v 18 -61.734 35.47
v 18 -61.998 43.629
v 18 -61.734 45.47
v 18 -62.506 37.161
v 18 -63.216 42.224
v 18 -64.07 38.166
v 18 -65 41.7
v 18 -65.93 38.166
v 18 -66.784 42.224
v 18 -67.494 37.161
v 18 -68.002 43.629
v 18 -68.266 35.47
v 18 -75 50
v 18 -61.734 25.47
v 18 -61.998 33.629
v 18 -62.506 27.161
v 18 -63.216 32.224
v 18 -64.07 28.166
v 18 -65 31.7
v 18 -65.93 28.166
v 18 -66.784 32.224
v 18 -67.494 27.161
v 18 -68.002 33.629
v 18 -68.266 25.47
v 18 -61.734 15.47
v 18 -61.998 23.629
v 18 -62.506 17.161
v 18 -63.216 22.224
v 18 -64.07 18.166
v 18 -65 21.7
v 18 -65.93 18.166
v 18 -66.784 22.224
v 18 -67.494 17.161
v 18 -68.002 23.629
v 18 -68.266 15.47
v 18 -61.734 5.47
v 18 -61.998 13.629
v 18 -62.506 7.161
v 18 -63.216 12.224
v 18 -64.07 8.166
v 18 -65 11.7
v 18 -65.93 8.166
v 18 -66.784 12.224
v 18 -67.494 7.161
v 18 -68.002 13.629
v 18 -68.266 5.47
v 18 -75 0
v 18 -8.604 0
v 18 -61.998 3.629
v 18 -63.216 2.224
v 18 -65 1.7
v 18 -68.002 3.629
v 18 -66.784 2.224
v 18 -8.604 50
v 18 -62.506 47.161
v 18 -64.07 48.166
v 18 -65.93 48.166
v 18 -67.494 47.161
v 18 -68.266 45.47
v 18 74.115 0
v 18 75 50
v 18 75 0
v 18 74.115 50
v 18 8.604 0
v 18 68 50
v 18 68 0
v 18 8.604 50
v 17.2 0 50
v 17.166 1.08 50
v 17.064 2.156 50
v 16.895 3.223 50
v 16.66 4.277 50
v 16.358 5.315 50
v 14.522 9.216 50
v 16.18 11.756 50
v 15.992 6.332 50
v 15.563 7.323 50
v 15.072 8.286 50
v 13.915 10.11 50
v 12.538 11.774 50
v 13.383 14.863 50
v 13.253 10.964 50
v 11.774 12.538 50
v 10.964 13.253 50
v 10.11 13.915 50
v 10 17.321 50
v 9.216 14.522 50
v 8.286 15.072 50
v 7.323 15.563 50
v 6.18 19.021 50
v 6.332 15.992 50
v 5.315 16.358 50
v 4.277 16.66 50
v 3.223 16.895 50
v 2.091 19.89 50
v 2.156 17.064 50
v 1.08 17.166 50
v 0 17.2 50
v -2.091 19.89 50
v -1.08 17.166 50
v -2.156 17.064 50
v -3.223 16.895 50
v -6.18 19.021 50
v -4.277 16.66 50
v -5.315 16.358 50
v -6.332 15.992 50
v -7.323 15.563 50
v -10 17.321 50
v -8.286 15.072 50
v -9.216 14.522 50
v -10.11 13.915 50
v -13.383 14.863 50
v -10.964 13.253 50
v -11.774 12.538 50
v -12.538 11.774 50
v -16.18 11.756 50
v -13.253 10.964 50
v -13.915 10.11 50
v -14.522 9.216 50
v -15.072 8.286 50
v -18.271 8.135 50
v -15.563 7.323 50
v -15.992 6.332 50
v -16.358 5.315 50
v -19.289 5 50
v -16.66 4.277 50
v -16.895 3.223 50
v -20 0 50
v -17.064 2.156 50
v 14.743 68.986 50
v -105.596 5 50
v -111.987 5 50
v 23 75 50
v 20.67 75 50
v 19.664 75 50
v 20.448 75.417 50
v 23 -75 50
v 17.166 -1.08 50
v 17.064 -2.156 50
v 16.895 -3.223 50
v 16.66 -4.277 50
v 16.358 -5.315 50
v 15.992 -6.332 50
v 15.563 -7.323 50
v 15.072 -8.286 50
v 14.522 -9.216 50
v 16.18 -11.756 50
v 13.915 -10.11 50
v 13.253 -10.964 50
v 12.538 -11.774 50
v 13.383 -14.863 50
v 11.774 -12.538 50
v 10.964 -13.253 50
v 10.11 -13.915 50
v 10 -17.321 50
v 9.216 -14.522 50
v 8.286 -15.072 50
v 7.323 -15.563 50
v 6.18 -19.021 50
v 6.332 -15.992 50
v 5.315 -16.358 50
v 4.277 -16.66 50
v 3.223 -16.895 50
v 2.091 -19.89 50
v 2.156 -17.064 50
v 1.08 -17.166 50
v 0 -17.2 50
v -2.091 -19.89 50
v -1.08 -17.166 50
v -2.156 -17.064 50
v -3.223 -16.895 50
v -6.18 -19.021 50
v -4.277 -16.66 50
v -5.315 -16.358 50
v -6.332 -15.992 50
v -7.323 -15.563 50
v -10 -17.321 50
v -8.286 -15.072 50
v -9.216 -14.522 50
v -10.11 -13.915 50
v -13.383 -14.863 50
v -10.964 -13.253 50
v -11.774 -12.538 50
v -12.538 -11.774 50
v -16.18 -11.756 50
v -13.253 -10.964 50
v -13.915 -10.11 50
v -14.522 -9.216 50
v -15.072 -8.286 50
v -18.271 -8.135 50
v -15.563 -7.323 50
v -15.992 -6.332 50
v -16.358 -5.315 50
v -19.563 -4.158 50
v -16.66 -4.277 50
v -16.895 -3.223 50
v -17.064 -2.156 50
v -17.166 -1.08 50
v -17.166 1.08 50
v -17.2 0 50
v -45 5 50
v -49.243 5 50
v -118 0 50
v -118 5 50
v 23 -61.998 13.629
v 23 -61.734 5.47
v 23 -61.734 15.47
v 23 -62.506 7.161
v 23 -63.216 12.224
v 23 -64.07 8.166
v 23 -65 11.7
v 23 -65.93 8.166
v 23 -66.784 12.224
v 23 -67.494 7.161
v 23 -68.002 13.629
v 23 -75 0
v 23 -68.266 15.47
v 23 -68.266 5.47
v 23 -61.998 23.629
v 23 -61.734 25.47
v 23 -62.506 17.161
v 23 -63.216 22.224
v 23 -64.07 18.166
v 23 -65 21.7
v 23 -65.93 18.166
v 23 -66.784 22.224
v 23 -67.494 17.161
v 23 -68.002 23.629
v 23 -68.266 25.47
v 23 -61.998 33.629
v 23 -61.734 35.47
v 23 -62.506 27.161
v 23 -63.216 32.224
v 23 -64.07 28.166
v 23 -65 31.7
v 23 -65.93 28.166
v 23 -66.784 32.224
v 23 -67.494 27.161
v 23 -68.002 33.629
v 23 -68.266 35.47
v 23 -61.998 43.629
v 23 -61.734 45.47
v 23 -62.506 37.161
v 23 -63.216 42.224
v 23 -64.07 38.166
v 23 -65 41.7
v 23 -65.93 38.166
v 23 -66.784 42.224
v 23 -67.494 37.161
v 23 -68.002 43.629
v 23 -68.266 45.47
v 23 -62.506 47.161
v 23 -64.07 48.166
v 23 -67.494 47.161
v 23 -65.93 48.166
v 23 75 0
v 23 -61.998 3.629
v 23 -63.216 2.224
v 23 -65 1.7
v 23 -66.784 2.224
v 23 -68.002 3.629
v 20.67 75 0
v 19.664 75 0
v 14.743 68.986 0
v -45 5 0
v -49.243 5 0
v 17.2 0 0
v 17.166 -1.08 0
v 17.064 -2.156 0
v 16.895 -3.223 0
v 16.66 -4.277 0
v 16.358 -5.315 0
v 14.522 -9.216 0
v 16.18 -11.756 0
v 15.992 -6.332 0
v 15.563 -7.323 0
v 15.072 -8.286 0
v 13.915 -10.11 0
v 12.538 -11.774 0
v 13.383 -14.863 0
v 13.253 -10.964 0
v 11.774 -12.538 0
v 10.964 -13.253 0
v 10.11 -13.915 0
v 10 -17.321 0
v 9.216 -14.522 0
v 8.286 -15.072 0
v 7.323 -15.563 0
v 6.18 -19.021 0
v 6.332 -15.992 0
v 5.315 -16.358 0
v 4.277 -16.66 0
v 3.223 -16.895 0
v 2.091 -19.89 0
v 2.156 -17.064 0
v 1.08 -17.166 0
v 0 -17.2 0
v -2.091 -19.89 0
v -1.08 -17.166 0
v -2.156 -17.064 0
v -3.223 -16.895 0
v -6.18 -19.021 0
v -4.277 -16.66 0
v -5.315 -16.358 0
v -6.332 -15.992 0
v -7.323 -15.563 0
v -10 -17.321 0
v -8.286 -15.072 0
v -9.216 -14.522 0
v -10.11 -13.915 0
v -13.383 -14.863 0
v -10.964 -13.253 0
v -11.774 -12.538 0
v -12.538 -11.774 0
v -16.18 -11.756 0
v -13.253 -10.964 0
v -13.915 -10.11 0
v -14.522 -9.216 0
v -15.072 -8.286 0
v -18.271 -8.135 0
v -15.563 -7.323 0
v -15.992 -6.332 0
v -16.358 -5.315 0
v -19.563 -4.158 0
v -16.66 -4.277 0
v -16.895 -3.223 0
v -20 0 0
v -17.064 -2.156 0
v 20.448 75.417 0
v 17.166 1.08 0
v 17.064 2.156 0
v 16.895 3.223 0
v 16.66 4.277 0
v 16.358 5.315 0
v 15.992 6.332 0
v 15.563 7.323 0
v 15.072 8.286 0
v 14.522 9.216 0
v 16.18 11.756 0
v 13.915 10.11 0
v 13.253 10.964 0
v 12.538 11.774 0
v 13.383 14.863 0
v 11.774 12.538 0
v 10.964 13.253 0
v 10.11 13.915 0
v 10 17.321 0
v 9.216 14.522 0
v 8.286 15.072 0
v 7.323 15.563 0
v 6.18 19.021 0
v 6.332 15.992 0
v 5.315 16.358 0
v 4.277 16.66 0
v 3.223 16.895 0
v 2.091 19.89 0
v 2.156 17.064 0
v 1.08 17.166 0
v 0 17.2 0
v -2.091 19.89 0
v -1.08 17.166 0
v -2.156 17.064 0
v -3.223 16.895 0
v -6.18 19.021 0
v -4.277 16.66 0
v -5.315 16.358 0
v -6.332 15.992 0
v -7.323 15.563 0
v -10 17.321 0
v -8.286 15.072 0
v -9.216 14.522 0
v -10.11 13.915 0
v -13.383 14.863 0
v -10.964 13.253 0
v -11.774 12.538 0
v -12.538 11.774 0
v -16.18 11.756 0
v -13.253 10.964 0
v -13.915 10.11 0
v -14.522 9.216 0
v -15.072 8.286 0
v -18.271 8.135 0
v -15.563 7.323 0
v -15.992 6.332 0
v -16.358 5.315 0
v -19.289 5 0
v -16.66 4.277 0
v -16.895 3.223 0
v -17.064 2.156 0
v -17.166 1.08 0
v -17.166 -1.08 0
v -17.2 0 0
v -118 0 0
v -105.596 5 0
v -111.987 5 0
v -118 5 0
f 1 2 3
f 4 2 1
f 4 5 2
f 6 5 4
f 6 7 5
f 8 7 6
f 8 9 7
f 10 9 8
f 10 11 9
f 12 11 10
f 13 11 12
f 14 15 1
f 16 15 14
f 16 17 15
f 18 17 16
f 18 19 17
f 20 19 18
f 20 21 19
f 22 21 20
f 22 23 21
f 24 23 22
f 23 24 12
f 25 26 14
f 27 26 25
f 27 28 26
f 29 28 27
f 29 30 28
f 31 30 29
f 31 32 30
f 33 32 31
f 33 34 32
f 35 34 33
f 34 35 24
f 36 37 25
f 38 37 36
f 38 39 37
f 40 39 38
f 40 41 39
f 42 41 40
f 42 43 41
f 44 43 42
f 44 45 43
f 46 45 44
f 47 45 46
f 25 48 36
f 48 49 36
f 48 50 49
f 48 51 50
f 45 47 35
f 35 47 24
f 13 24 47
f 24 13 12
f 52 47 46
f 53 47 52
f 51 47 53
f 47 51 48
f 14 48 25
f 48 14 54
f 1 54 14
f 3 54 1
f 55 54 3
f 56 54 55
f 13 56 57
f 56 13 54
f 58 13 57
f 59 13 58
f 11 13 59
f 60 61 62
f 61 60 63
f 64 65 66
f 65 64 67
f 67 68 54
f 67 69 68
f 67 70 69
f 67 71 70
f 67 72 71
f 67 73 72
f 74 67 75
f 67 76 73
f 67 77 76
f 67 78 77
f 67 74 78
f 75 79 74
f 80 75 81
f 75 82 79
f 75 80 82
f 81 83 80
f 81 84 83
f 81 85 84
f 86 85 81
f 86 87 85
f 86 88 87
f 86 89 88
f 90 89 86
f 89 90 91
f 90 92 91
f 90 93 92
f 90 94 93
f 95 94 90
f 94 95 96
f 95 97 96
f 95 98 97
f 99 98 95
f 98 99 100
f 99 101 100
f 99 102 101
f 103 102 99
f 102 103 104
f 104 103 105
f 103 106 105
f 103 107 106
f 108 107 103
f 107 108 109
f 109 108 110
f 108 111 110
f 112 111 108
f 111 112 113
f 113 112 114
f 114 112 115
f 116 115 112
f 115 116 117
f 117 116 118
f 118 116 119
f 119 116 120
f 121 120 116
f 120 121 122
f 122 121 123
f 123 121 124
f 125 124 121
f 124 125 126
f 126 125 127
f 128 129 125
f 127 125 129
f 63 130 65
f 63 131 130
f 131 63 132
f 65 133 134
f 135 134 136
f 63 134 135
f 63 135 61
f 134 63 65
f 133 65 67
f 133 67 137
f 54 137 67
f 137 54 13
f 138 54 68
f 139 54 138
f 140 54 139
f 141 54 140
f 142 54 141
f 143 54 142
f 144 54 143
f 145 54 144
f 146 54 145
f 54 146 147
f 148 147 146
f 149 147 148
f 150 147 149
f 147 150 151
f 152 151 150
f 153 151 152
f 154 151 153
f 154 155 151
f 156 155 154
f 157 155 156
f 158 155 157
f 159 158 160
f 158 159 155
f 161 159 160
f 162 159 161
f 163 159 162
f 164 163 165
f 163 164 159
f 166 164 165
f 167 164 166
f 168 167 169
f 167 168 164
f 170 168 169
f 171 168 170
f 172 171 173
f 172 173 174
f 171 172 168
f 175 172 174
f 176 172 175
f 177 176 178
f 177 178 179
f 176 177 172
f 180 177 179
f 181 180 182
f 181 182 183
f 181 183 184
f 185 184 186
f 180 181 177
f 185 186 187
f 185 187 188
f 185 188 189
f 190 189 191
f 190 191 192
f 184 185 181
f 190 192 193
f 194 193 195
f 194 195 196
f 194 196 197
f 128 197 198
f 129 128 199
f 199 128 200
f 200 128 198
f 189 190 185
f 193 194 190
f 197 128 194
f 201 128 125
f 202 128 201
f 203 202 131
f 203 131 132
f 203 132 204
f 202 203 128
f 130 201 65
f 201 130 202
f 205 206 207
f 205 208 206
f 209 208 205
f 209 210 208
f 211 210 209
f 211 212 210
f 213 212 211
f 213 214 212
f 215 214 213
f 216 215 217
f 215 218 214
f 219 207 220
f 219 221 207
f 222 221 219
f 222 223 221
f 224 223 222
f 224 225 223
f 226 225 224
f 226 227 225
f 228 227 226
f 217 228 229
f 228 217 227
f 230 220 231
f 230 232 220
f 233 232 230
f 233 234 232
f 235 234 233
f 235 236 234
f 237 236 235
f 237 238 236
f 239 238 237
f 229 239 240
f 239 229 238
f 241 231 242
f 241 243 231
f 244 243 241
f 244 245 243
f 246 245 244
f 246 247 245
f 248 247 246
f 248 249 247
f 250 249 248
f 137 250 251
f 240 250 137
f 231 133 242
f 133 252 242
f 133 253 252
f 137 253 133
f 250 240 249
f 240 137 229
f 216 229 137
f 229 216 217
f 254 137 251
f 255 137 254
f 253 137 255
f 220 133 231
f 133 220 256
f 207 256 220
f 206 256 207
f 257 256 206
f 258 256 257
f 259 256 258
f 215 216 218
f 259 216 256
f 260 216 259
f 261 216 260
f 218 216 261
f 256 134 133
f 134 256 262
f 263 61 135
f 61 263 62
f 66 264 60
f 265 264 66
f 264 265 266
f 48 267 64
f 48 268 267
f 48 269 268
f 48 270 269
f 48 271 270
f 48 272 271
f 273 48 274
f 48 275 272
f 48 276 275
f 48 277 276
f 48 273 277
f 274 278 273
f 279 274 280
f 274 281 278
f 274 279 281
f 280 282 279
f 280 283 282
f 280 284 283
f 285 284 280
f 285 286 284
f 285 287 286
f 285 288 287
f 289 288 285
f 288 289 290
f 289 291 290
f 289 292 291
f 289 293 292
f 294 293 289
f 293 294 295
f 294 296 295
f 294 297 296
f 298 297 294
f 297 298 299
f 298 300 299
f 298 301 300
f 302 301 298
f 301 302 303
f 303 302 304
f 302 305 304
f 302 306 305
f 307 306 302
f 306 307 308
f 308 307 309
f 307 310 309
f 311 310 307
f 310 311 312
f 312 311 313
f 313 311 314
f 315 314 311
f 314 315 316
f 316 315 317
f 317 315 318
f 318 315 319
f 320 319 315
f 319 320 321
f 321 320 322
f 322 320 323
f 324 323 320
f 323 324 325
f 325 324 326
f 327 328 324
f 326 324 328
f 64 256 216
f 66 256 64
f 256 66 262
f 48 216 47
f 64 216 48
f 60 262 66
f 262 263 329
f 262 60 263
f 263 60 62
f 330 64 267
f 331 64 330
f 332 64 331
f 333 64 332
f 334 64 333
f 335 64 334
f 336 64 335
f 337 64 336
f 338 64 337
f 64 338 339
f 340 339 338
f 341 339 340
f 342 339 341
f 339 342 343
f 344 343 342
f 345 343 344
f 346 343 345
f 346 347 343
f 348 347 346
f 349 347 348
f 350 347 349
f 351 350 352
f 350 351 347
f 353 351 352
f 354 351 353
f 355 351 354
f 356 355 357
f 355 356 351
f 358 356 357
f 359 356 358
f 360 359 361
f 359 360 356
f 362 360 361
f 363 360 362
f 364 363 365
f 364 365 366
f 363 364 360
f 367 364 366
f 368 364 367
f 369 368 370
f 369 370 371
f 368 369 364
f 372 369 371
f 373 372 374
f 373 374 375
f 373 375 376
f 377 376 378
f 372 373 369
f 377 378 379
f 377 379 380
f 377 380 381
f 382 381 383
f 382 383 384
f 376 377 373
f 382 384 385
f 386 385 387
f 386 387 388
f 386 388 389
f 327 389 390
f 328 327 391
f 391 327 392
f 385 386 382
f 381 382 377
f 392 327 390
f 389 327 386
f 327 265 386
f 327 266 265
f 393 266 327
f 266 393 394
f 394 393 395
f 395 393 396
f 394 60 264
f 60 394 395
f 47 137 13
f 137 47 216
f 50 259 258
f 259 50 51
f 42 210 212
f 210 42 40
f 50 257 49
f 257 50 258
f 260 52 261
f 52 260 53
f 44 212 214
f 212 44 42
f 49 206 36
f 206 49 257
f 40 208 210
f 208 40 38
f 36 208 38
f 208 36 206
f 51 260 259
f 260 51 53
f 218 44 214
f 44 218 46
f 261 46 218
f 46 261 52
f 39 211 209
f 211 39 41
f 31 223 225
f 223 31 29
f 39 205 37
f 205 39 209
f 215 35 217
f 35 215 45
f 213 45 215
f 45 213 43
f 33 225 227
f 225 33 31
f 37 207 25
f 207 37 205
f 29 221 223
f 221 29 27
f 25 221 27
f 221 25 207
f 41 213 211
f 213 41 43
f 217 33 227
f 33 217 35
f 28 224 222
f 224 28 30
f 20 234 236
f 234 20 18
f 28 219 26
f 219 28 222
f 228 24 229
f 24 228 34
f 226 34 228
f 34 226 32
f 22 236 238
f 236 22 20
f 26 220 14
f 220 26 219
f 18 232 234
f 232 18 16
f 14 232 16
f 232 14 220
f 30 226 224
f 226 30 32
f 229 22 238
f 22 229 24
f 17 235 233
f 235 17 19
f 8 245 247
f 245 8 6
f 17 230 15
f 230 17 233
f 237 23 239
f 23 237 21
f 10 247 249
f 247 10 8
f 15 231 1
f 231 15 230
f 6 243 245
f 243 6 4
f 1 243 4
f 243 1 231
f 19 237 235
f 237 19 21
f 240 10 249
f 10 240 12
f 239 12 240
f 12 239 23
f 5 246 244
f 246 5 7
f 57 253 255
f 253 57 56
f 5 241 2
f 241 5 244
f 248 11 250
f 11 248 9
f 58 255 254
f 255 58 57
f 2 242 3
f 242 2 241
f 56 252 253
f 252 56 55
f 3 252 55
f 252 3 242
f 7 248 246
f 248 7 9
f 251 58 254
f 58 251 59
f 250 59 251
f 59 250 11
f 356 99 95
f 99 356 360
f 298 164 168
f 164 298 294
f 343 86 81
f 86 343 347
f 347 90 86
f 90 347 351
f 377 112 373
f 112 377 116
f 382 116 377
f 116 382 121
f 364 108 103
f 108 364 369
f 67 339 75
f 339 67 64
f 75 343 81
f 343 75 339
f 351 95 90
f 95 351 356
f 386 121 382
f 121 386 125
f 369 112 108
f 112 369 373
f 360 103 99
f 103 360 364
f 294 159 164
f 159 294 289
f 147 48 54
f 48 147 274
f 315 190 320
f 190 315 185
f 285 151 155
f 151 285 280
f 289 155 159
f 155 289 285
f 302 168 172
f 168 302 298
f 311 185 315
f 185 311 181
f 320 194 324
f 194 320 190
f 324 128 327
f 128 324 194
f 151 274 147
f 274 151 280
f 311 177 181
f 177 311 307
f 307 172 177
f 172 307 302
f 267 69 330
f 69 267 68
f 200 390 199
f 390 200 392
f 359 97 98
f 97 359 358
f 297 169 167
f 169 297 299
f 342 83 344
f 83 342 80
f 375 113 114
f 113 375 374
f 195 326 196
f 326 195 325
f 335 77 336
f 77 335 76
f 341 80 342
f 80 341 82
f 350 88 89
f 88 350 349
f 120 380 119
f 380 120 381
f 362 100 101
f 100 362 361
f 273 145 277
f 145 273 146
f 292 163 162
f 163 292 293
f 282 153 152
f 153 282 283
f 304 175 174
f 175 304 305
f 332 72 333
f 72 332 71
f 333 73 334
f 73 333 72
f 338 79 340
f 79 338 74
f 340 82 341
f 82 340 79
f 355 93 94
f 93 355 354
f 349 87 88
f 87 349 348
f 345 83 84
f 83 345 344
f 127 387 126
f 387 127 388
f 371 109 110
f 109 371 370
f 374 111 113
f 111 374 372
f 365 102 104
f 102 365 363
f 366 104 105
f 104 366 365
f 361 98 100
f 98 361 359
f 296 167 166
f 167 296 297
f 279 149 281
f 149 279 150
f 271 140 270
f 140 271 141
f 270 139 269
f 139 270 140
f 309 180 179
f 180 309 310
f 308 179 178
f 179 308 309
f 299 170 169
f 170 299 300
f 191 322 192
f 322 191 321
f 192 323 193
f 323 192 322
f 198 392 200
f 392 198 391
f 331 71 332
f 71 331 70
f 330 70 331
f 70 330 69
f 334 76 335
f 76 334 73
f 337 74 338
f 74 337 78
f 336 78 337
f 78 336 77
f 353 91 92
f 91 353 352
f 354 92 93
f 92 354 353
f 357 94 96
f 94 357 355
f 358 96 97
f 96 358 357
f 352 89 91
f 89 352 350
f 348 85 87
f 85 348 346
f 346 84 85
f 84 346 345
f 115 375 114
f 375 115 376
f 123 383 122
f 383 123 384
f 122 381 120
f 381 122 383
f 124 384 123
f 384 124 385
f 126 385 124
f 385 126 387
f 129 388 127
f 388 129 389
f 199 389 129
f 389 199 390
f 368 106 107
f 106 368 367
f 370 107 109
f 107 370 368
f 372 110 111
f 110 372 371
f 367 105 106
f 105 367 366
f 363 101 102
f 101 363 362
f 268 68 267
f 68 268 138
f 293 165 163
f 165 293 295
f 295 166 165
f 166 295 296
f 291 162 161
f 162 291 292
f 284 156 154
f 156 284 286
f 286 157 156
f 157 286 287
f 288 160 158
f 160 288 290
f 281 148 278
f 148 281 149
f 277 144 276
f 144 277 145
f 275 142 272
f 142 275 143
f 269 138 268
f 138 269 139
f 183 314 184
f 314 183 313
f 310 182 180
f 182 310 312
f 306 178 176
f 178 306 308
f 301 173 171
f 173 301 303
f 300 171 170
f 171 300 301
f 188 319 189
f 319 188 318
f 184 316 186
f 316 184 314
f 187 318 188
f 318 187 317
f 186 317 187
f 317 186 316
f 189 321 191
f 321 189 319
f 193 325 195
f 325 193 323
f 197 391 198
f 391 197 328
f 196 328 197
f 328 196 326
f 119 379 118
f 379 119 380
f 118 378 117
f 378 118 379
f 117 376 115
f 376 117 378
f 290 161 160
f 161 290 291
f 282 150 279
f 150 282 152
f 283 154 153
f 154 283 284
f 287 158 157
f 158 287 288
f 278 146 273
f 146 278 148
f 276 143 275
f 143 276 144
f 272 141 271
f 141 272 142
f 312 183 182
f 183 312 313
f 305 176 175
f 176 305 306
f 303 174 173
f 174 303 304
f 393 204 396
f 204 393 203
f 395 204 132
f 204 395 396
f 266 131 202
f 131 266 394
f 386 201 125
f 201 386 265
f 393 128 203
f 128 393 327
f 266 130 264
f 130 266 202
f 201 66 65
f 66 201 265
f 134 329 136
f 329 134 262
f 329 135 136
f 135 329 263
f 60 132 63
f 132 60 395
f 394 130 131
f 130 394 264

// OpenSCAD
translate([18,-75,0]){
    difference(){
        cube([5,150,50]);
        translate([-10,10,5]){
            rotate([0,90,0]){
                cylinder(50,3.3,3.3);
            }
        }
        translate([-10,10,15]){
            rotate([0,90,0]){
                cylinder(50,3.3,3.3);
            }
        }
        translate([-10,10,25]){
            rotate([0,90,0]){
                cylinder(50,3.3,3.3);
            }
        }
        translate([-10,10,35]){
            rotate([0,90,0]){
                cylinder(50,3.3,3.3);
            }
        }
        translate([-10,10,45]){
            rotate([0,90,0]){
                cylinder(50,3.3,3.3);
            }
        }
    }
}

translate([-118,0,0]){
cube([100,5,50]);
}

translate([-50,0,0]){
    rotate([0,0,45]){
        cube([100,3,50]);
    }
}
translate([-115,0,0]){
    rotate([0,0,28]){
        cube([155,3,50]);
    }
}

difference(){
    cylinder(50, 20, 20);
    translate([0,0,-5]){
        cylinder(60, 17.2, 17.2, $fn=100);
    }
}
